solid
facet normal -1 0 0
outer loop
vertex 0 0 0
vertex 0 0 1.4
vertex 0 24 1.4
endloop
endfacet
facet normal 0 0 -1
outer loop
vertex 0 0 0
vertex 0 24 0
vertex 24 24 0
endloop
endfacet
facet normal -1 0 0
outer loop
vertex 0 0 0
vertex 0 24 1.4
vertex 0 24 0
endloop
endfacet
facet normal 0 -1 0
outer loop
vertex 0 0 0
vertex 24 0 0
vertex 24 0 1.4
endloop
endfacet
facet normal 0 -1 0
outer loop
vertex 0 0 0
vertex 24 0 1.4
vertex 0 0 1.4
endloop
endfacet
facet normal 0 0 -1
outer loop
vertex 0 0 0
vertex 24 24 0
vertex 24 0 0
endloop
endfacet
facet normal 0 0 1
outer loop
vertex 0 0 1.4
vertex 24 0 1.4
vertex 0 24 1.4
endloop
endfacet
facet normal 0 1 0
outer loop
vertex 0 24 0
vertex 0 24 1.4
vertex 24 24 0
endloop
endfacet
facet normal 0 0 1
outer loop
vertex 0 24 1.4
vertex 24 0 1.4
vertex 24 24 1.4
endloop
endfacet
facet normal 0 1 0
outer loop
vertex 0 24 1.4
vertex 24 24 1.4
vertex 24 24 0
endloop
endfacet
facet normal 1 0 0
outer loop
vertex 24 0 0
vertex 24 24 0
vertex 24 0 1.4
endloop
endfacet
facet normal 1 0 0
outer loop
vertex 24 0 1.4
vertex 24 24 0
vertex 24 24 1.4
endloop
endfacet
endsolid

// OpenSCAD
/* Warning, this is a very basic generator with a lot of approximation 
input data : [LQFP, H9X, 24x24x1.4mm, 176, , A, C04-00046A]
generated by com.zoubworld.electronics.cad.model3d.Basic
Date : Sun Feb 15 10:50:48 CET 2026
*/

//body
color("black")
translate([0,0,0])
cube([24.0,24.0,1.4], center=false);
